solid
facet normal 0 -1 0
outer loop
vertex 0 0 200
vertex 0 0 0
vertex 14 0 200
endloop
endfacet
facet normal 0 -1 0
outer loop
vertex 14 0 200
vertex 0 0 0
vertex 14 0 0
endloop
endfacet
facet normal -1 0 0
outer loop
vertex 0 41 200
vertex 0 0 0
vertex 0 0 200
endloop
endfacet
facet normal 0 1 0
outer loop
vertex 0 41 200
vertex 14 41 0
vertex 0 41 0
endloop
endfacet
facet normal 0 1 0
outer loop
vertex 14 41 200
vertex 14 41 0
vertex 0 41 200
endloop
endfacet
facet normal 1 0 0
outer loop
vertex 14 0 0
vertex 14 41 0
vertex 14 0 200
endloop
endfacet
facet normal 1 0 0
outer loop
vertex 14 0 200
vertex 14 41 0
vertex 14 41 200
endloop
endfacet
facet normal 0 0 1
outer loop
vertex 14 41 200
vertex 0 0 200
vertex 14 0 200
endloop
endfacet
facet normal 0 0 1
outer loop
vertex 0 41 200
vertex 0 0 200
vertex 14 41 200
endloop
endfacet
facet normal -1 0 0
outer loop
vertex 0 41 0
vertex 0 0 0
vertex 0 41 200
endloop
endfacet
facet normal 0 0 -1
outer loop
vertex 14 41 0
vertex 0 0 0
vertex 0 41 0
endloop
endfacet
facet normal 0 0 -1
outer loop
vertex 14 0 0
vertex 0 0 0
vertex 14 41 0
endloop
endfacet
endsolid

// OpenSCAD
// file: ../base/cube_base.scad
input_length = 10;
input_height = 10;
input_depth = 10;
box_size = 1;

module box(input_length, input_depth, input_height, box_size){
	length = input_length;
	height = input_height - box_size;
	depth = input_depth;

	bottom_back_left =   [0,      0,     0];
	top_back_left =      [0,      0,     height];
	bottom_front_left =  [0,      depth, 0];
	top_front_left =     [0,      depth, height];
	bottom_back_right =  [length, 0,     0];
	top_back_right =     [length, 0,     height];
	bottom_front_right = [length, depth, 0];
	top_front_right =    [length, depth, height];

	box = [bottom_back_left, top_back_left, bottom_front_left, top_front_left, bottom_back_right, top_back_right, bottom_front_right, top_front_right];

	hull(){
		for(position = box){
			translate(position){
				cube(box_size);
			}
		}
	}
}

box(input_length, input_depth, input_height, box_size);
// main file
use <../base/cube_base.scad>

//Dimentions
length = 13;
width = 40;
height = 200;

//Box
box(length, width, height, 1);
